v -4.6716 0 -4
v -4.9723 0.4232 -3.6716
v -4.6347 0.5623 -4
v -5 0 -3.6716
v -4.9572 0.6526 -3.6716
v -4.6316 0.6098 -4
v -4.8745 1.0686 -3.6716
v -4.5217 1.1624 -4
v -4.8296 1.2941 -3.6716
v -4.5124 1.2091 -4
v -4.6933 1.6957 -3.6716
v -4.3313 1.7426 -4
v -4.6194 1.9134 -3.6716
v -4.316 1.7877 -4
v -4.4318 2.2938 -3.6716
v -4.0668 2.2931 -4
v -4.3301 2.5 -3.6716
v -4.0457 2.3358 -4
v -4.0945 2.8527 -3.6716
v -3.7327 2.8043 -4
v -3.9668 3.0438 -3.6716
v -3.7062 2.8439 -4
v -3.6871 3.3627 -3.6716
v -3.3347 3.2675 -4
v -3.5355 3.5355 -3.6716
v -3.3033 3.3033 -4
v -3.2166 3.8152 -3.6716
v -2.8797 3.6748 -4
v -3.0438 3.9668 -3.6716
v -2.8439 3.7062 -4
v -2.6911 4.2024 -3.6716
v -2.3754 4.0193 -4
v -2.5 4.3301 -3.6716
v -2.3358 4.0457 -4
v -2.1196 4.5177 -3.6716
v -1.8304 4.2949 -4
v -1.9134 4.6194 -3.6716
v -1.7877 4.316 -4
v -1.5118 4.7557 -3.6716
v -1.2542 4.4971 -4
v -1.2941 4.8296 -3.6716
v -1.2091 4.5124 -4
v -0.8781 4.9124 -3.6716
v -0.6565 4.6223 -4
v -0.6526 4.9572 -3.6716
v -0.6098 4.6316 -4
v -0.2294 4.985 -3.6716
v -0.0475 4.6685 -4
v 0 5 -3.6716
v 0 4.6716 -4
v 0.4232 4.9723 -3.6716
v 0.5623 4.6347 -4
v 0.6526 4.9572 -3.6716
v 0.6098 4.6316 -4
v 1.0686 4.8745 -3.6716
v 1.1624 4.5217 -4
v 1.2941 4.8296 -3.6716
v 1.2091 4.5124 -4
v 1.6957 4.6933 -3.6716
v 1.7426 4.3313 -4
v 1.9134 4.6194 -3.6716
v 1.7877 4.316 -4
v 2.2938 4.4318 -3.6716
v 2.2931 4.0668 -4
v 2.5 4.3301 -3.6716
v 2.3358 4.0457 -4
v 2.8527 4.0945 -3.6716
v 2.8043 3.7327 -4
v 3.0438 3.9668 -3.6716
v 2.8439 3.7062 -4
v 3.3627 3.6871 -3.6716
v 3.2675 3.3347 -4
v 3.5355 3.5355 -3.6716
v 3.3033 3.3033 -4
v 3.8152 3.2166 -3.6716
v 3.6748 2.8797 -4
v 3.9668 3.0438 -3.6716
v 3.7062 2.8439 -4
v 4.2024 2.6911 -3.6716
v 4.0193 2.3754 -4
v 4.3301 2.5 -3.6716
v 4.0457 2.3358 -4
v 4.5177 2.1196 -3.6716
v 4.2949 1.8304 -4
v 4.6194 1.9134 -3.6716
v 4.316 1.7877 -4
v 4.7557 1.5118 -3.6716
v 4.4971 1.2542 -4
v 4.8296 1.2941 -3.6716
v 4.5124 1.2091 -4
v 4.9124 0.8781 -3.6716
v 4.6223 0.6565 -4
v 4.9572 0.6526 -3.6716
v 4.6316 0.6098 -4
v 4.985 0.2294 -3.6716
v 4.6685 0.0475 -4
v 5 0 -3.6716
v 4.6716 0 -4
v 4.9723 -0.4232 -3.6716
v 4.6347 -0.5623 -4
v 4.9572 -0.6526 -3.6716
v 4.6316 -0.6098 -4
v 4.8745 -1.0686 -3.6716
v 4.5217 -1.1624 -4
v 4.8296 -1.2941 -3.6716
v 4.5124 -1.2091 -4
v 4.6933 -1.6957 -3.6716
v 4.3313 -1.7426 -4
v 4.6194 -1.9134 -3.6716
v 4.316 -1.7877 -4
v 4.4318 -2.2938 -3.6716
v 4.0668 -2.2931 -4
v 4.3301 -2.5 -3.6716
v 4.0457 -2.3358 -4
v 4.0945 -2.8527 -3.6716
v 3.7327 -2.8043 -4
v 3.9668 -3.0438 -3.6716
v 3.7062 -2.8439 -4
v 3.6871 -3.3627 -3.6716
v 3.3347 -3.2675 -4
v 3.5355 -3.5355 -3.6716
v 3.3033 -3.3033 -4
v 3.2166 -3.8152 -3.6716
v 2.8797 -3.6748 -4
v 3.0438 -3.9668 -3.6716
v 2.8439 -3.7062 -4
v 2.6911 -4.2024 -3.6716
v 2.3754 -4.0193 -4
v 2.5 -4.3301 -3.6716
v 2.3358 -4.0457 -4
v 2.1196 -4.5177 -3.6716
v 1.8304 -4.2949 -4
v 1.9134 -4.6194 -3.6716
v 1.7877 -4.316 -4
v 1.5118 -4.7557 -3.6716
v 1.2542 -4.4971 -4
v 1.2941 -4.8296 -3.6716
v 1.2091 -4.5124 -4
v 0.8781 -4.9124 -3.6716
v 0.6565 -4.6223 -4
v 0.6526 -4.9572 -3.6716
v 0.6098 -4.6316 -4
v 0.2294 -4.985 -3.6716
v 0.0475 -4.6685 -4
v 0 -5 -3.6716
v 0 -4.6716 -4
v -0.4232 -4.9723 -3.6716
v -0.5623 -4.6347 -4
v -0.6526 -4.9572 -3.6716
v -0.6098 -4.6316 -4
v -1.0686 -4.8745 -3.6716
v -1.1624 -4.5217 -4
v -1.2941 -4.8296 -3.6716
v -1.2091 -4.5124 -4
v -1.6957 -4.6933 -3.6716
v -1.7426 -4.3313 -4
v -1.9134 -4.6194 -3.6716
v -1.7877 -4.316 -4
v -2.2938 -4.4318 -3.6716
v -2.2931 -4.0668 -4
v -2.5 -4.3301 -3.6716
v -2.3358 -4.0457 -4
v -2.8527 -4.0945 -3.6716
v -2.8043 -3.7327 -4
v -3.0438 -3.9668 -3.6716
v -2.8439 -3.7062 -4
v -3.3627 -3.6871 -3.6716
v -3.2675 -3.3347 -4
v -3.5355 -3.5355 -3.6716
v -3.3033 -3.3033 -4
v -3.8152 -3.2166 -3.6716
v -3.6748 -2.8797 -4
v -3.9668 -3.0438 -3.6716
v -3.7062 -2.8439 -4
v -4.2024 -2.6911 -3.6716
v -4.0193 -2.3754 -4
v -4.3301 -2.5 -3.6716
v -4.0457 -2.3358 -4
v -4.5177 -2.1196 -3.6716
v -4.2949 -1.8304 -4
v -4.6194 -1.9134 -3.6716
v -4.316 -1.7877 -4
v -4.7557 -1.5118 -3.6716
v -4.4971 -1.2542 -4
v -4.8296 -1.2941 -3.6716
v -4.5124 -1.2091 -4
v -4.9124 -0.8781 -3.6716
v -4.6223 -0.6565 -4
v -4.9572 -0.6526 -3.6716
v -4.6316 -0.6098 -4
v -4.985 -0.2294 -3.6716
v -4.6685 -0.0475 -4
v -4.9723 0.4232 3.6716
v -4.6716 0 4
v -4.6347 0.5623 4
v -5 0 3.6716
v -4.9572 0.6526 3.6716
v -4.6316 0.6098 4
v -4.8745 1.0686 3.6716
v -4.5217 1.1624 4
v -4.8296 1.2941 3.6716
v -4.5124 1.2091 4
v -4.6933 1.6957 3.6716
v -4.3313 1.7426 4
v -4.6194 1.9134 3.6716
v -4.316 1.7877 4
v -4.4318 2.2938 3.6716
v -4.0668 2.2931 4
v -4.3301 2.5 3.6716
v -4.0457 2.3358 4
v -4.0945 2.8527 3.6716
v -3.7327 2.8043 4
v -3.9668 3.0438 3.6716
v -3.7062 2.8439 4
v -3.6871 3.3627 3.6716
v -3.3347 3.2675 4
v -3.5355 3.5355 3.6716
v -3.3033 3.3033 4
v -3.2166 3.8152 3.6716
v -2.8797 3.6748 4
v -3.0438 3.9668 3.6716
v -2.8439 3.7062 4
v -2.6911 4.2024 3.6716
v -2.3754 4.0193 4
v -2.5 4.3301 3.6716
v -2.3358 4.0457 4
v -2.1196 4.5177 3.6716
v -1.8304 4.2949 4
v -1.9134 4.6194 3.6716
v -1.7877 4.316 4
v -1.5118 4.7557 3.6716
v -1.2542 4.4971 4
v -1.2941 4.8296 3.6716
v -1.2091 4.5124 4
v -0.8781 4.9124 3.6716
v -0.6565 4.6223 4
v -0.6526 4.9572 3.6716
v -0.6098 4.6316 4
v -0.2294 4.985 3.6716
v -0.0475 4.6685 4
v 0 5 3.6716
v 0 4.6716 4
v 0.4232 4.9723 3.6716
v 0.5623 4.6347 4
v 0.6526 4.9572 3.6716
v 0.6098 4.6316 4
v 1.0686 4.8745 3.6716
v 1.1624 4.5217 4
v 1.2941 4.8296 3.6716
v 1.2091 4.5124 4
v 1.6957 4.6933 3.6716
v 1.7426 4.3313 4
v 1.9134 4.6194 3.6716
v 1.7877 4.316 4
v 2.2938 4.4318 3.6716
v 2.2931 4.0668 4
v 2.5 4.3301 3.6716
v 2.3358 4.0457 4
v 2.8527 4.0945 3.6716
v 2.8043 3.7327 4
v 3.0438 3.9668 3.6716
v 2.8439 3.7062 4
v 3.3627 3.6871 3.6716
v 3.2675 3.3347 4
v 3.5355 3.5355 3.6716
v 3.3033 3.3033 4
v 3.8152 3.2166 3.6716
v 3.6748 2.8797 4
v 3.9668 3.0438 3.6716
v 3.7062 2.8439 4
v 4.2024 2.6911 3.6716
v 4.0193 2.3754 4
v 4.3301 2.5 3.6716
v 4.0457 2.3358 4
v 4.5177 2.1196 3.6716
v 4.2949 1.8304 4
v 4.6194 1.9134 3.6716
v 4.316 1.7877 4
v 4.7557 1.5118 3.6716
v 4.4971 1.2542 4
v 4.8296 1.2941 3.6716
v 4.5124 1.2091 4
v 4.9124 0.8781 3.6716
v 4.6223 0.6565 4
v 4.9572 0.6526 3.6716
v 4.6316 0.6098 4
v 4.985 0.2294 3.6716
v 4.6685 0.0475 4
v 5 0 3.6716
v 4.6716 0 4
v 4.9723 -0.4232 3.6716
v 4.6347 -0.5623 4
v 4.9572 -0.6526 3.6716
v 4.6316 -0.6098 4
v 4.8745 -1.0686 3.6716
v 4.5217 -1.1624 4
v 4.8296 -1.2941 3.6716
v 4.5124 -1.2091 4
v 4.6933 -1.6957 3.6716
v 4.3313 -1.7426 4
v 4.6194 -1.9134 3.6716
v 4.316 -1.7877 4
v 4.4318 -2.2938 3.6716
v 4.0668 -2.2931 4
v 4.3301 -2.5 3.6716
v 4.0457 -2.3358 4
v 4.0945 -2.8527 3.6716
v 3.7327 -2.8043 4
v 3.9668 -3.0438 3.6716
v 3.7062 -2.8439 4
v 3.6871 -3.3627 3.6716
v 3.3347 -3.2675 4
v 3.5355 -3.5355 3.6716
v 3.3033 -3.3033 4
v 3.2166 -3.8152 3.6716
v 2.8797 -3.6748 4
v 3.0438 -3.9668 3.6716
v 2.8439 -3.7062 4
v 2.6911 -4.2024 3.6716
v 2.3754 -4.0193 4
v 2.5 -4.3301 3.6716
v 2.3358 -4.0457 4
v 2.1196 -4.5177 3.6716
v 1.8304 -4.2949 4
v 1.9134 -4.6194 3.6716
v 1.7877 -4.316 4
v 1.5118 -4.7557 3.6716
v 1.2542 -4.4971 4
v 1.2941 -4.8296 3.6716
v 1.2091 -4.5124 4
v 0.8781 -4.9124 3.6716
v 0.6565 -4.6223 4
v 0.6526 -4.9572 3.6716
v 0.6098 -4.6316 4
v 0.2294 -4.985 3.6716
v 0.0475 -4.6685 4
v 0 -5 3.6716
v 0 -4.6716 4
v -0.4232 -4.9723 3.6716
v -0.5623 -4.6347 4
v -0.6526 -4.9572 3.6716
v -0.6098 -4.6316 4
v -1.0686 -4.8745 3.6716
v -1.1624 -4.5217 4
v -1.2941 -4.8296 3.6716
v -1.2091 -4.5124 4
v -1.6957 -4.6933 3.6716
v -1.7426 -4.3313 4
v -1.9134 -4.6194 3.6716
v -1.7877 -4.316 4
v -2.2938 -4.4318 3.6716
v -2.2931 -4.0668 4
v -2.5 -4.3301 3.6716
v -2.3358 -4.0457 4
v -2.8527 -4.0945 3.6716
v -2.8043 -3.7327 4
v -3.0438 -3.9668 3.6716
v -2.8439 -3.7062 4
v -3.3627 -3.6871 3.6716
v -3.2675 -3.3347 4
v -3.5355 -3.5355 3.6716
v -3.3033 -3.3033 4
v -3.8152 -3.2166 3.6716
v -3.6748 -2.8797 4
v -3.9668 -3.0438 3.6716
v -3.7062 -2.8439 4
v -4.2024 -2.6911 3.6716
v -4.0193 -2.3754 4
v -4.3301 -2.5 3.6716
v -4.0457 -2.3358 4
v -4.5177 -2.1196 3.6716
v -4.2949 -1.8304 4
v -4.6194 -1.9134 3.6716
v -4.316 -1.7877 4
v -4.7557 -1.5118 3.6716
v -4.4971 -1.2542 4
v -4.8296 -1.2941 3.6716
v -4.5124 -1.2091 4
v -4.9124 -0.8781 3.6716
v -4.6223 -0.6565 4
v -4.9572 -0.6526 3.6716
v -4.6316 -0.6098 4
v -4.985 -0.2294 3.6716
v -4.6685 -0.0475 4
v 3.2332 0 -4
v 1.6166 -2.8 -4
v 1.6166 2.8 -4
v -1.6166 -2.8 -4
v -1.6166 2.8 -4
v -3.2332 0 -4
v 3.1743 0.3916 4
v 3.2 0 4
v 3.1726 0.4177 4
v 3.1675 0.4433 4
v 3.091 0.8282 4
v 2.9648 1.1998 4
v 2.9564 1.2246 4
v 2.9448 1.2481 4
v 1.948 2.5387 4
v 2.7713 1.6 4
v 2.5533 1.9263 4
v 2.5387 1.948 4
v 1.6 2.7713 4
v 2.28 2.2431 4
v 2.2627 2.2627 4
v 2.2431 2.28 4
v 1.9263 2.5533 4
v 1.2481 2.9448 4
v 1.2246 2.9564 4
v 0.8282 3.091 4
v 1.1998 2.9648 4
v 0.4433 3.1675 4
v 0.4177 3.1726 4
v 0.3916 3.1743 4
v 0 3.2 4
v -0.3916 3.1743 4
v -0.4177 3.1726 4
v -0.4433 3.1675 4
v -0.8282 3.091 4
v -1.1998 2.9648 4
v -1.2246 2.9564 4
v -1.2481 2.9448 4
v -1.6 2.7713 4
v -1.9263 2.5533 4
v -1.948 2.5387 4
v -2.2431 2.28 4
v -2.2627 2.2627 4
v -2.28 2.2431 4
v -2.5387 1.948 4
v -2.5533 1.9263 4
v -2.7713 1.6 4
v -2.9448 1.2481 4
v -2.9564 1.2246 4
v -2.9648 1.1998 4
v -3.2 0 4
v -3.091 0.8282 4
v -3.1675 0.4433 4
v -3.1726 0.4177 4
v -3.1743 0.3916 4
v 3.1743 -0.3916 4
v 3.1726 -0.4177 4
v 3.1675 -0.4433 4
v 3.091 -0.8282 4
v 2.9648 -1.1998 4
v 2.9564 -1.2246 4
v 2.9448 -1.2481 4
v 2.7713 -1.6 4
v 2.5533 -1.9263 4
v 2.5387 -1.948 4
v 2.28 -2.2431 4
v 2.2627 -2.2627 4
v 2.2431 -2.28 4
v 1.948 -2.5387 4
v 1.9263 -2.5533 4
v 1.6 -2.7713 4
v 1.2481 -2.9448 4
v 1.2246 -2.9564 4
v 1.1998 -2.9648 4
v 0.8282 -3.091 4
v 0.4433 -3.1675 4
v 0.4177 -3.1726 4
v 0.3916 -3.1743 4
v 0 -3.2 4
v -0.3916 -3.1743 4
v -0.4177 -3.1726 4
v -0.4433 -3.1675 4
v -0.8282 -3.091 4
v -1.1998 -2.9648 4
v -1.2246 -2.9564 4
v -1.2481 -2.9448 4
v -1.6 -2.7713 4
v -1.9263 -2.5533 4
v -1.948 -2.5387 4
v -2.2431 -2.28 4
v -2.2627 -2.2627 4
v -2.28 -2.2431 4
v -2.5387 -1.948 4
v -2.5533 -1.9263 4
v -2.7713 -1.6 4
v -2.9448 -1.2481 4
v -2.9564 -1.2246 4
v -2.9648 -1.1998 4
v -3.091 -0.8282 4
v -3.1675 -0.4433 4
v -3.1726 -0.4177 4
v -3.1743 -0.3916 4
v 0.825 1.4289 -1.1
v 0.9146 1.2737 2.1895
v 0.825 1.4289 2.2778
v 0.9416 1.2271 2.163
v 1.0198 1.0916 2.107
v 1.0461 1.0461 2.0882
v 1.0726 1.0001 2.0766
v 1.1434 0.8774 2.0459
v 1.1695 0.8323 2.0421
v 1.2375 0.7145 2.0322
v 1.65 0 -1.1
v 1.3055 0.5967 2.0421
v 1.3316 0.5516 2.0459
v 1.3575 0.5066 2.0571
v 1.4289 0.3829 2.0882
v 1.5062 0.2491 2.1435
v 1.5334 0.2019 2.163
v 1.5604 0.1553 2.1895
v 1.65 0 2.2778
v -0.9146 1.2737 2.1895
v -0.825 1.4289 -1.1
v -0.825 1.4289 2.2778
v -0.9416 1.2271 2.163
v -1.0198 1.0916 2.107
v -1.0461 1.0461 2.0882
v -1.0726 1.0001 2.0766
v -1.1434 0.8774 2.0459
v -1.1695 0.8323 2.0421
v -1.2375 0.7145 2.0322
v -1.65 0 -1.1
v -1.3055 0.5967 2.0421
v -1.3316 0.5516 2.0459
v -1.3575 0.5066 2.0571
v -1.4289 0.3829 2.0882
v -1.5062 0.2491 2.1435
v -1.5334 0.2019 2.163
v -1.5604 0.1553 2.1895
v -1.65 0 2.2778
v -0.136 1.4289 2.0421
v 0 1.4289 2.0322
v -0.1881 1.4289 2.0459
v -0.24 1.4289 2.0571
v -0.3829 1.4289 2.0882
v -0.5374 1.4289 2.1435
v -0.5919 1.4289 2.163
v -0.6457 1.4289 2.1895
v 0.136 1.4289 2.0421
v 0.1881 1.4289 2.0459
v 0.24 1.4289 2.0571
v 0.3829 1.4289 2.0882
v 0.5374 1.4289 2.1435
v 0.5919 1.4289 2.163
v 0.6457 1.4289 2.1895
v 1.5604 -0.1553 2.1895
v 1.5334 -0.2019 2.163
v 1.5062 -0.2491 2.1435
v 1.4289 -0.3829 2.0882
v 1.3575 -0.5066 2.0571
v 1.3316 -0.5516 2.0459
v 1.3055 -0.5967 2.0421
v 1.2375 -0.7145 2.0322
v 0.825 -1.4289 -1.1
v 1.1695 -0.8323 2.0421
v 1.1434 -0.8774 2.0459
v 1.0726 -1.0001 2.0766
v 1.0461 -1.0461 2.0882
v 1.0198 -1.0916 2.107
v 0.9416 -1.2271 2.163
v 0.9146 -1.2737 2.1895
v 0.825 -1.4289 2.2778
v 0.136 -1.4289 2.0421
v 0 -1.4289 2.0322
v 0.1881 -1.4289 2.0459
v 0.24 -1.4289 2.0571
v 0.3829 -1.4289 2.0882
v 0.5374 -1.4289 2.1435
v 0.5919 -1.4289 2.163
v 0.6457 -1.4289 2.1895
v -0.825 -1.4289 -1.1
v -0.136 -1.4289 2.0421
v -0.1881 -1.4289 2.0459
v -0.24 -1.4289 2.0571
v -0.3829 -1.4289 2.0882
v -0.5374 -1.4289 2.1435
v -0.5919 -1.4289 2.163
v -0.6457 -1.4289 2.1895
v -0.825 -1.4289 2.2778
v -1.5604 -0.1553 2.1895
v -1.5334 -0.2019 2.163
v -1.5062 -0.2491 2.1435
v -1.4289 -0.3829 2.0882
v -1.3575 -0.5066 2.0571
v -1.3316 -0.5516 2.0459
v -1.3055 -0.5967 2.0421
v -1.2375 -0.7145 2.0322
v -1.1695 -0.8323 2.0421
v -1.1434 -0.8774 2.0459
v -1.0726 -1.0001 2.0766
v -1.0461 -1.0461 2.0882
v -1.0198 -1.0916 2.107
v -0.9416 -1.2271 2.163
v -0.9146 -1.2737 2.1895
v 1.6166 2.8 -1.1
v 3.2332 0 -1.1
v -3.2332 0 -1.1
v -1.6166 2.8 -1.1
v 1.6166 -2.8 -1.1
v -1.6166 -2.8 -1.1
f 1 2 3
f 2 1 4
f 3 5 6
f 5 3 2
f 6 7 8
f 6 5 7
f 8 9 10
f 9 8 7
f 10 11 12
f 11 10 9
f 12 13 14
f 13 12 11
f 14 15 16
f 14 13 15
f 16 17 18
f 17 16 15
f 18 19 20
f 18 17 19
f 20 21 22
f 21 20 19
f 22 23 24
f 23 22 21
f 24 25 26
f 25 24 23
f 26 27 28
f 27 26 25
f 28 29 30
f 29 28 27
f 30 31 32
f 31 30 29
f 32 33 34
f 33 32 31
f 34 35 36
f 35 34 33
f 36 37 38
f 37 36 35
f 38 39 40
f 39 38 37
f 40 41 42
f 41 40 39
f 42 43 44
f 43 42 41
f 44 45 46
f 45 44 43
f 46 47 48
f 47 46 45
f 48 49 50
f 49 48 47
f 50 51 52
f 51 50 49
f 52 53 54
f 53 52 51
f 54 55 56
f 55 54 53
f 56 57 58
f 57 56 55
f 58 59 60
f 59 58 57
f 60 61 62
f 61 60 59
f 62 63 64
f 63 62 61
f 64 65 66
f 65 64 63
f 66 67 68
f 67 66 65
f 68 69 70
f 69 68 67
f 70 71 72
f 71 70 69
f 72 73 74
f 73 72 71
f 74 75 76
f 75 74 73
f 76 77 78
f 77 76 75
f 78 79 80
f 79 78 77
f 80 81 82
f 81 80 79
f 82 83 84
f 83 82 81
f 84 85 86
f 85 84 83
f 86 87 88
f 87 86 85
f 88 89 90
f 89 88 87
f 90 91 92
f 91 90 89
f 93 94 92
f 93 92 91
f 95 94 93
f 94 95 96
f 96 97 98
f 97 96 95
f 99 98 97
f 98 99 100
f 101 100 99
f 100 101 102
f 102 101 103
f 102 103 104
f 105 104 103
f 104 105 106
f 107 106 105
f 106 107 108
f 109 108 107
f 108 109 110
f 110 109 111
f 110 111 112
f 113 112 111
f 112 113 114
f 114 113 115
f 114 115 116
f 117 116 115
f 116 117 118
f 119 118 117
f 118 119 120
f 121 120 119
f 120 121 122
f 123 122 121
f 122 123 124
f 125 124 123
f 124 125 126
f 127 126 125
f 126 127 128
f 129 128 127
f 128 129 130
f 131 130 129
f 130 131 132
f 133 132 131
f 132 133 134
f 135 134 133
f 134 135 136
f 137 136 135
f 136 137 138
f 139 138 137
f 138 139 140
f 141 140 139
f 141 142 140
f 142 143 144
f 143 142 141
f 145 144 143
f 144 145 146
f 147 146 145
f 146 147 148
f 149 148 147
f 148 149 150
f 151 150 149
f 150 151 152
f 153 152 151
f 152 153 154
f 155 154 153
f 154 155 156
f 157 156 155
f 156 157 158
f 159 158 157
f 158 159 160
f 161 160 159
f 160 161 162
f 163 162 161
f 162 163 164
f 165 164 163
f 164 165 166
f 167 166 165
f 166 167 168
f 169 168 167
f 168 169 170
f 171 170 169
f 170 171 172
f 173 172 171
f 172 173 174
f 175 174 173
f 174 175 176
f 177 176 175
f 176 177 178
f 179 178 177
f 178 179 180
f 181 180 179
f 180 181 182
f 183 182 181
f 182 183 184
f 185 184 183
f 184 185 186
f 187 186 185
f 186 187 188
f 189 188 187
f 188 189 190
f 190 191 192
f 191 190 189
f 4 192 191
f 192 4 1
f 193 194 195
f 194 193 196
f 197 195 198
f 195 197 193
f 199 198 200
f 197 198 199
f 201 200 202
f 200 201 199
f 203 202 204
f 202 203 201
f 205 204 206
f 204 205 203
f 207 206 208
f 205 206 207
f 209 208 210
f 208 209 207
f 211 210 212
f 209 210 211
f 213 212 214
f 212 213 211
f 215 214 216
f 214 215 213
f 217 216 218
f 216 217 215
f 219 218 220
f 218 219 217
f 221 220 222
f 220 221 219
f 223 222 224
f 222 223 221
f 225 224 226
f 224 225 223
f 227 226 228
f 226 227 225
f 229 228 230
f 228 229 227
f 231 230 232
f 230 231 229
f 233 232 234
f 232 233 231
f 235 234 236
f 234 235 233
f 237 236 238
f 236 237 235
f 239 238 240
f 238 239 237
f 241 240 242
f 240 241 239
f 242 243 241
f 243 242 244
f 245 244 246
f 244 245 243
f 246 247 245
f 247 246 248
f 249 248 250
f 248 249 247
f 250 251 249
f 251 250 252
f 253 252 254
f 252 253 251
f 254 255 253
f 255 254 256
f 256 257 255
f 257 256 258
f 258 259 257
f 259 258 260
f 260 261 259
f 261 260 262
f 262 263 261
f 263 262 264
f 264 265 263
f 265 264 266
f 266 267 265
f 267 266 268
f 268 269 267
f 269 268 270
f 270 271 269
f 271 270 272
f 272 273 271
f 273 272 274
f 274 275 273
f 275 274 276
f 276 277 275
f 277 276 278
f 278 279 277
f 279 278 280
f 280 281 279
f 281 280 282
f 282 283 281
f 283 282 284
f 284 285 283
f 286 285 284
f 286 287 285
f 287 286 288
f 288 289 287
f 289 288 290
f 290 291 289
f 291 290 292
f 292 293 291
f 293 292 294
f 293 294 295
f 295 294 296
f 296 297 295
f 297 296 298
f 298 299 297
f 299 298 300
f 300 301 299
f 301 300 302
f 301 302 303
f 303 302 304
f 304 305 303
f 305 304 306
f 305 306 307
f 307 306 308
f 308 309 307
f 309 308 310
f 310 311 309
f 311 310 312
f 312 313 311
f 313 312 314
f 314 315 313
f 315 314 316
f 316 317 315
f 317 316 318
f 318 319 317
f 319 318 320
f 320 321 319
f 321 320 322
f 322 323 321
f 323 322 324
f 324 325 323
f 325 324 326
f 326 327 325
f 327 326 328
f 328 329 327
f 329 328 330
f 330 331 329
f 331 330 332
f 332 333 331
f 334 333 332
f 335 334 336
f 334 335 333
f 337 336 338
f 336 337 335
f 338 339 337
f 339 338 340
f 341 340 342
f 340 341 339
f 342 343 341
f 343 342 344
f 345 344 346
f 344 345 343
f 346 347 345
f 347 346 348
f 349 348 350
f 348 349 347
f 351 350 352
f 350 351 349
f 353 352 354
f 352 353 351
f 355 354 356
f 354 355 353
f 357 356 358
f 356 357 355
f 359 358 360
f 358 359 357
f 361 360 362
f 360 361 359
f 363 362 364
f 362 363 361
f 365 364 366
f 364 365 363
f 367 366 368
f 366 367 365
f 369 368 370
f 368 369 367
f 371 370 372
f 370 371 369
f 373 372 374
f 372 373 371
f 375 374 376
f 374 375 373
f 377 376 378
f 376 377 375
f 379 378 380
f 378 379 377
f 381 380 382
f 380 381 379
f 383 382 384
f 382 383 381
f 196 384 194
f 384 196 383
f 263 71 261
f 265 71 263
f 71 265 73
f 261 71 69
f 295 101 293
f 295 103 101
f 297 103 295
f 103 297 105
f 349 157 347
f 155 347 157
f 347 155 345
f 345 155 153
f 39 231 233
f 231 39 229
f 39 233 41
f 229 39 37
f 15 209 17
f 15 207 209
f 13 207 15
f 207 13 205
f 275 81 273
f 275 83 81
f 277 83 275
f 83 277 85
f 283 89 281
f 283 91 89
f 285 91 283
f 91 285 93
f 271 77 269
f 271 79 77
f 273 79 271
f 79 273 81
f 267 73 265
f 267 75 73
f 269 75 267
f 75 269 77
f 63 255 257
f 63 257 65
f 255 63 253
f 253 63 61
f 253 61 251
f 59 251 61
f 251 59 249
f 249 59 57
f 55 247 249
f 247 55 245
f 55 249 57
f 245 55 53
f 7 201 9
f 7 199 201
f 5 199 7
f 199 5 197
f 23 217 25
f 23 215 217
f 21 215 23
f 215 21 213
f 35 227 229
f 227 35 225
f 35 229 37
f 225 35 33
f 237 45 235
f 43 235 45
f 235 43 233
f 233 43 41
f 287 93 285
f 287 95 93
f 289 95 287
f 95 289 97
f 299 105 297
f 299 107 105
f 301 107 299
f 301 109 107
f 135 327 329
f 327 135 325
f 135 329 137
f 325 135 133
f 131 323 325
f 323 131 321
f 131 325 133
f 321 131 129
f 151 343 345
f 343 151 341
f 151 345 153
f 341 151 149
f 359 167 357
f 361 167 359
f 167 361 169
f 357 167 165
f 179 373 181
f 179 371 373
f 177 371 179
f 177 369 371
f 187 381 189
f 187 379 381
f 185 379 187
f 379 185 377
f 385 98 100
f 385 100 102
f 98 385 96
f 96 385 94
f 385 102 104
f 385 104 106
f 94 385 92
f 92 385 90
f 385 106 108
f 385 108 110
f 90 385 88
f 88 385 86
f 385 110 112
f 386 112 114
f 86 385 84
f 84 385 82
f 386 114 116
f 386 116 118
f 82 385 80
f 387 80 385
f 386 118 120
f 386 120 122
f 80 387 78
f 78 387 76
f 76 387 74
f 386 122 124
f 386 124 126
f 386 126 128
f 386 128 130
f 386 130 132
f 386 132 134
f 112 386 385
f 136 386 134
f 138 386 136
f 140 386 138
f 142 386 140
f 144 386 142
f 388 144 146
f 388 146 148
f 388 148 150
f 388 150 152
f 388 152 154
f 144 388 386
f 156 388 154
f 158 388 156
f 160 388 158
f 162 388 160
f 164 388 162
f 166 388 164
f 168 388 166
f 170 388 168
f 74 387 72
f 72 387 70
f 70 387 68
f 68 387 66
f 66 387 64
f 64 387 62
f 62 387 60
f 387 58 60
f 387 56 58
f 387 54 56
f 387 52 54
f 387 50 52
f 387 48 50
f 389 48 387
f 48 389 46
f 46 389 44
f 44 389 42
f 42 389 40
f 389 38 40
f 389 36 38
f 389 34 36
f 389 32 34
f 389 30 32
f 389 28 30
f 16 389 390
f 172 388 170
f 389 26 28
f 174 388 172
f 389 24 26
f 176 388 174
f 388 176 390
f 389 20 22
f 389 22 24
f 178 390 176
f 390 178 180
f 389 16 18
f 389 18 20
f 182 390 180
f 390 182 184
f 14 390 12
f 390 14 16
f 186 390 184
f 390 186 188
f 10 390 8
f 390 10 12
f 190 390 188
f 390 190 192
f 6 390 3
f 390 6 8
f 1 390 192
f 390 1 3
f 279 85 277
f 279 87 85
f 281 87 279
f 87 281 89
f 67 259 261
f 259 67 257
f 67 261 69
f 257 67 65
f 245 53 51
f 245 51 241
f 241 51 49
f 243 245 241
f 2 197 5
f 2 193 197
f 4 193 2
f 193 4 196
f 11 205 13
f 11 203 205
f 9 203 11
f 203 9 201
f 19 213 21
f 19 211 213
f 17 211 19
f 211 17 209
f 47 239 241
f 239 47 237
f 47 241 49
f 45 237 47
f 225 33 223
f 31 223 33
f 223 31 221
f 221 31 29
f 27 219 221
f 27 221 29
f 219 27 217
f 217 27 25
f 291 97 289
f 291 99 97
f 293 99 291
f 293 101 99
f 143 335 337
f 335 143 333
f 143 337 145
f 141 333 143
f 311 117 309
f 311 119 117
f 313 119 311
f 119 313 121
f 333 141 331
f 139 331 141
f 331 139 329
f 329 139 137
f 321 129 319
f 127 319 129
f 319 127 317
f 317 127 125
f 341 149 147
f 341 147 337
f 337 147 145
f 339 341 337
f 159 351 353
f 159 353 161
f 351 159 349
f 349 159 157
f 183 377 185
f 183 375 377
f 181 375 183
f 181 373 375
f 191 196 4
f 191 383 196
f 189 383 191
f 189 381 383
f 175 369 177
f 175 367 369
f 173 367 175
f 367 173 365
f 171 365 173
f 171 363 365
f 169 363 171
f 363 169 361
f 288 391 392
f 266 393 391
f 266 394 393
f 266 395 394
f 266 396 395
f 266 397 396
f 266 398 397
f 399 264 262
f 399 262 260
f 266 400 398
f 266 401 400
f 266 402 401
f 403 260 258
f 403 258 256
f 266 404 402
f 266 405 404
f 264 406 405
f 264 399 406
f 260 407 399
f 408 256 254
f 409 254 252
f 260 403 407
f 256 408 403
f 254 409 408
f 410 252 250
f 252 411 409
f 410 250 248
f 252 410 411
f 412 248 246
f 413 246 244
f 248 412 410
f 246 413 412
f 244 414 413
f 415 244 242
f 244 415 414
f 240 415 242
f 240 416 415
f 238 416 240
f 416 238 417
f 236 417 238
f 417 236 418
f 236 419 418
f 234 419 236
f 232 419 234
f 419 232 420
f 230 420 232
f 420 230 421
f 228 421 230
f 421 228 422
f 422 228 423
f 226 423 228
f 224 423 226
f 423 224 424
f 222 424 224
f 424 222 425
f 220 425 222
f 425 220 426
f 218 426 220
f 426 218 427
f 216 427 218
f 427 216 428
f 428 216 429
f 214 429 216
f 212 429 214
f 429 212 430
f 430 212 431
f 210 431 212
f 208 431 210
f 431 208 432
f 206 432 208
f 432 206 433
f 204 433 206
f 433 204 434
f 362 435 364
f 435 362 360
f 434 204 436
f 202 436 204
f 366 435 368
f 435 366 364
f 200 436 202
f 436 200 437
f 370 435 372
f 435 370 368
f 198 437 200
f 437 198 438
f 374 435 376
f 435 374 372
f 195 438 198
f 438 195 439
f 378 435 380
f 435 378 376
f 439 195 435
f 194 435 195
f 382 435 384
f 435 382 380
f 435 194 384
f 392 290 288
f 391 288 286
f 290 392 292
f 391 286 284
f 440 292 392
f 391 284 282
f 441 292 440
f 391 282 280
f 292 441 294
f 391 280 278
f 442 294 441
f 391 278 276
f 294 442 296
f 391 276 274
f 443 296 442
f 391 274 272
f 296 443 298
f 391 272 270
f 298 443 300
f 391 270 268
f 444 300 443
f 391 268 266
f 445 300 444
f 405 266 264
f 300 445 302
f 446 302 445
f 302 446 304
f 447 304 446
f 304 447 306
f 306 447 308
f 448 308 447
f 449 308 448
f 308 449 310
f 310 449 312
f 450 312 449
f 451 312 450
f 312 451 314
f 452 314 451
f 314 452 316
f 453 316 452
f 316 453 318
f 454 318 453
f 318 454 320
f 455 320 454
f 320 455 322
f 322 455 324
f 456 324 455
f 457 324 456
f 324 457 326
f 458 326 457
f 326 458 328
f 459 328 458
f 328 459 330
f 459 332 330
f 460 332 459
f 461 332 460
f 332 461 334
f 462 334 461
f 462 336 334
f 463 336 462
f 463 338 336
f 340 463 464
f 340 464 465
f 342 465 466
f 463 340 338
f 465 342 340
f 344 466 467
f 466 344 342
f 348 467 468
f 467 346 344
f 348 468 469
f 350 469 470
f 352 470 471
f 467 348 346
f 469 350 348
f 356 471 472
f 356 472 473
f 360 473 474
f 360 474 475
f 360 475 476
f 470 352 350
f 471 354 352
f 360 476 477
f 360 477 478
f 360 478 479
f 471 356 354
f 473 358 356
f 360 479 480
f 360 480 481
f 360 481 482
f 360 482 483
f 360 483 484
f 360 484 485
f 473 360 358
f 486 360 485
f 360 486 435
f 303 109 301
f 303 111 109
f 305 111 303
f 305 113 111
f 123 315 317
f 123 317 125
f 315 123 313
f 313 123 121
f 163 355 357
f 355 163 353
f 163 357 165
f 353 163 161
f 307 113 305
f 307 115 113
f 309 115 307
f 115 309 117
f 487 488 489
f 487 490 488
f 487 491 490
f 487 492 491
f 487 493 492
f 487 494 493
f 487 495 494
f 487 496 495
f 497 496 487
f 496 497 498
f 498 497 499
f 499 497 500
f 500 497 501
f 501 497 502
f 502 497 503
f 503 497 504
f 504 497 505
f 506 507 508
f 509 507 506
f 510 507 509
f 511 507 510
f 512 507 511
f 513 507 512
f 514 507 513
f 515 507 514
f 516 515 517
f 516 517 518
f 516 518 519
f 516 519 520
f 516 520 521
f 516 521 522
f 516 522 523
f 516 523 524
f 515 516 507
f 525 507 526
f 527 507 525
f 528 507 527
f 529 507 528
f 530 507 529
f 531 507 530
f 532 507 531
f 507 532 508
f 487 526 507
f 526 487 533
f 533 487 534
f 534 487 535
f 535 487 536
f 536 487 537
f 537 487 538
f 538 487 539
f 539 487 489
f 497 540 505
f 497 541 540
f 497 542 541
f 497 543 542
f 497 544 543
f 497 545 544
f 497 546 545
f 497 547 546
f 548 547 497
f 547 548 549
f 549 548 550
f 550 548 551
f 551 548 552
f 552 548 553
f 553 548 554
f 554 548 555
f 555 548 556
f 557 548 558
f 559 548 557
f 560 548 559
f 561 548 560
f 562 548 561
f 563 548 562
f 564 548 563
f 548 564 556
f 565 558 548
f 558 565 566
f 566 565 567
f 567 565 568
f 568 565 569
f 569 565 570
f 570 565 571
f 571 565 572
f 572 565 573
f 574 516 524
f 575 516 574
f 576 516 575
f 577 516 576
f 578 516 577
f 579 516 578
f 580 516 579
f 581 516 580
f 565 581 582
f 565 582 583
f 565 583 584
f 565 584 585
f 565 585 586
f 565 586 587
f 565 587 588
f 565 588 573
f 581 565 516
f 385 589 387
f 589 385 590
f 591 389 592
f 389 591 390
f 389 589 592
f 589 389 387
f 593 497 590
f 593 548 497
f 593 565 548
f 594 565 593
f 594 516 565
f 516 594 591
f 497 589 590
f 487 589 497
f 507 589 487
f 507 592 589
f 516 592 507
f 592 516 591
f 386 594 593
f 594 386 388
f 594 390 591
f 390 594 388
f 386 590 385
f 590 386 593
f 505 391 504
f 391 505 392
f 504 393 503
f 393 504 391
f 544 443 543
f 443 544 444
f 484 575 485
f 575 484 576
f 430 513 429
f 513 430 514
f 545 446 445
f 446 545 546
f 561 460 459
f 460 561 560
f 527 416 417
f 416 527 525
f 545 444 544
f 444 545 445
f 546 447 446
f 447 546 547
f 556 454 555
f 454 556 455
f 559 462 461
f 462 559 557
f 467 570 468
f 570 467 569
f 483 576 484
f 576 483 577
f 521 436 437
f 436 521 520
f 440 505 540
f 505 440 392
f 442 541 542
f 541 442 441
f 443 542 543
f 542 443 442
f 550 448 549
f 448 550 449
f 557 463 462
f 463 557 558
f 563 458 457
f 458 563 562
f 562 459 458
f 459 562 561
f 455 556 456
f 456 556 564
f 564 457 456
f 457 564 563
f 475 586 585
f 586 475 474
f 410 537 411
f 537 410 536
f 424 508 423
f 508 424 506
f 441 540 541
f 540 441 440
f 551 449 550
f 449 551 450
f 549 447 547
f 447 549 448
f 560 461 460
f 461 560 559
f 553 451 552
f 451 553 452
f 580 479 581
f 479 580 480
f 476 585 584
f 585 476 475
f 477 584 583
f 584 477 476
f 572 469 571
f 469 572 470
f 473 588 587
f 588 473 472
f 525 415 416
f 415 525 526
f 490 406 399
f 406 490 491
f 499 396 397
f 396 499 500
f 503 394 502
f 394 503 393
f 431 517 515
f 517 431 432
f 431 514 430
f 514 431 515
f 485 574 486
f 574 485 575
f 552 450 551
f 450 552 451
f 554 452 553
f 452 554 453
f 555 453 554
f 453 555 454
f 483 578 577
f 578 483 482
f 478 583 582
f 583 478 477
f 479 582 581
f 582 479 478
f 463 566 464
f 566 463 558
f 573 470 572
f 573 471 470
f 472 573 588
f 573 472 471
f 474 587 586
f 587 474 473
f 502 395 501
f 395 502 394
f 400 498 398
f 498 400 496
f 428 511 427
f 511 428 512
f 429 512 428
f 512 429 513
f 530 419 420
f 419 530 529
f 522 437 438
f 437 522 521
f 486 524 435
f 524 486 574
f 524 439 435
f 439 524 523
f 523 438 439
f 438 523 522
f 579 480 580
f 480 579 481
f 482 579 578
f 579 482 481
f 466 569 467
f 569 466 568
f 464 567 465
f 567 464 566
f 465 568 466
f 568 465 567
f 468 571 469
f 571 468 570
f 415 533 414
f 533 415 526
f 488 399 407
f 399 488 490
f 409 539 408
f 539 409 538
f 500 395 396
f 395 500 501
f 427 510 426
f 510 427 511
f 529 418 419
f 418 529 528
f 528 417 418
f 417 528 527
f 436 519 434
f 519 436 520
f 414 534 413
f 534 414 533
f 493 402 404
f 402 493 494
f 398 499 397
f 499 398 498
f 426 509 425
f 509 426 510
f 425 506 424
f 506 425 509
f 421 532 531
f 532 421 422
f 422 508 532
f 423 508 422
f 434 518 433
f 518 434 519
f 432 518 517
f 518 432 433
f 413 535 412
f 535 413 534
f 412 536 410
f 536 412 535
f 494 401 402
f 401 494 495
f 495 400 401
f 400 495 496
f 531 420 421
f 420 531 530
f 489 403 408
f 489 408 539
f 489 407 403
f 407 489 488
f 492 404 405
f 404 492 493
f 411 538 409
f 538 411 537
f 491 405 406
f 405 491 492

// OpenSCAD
// file: lib/parameters.scad
// Parameters shared between modules
Base_th = 2;
Beam_width = 15;
Wiggle = 0.25;
Fat_beam_width = Beam_width + Wiggle;
Beam_length = 400;
Wall_th = 2.5;
Min_beam_width = 12.5;
Max_beam_width = 17.5;
Zip_th = 2;
Zip_h = Zip_th + Max_beam_width - Min_beam_width;
Zip_w = 5.0;
Nema17_cube_width          = 42.43;
Nema17_screw_hole_width    = 43.74; // Opposite corner screws
Nema17_ring_diameter       = 22;
Nema17_cube_height         = 39.36;
Nema17_shaft_height        = 63.65;
Nema17_ring_height         = 2;
Nema17_shaft_radius        = 5/2;
b608_outer_dia = 22.2;
b608_width = 7.05;
b608_bore_r = 4;
b608_vgroove_big_r = b608_outer_dia/2 + 2;
b608_vgroove_small_r = b608_outer_dia/2;
b608_ugroove_big_r = b608_vgroove_big_r;
b608_ugroove_small_r = b608_vgroove_small_r;
Gap_between_sandwich_and_plate = 1.5 + Base_th; // 1.5 mm for wiggle
Motor_bracket_flerp_r = 6;
Motor_bracket_flerp = 14;
Motor_bracket_cw = Nema17_cube_width + 6;
Motor_bracket_att_ang = 50;
Mounting_screw_d = 3.5;
Mounting_screw_head_d = 14;
Spool_outer_wall_th = 4;

// Corner clamp parameters
Cc_l1 = (Fat_beam_width+2*Wall_th)*2*sqrt(3);
Cc_rad_b = 4;
Cc_action_point_from_mid = Cc_l1/sqrt(3)-2*Cc_rad_b-7;
Cc_plastic_length = sqrt(Cc_action_point_from_mid*Cc_action_point_from_mid
                       - (Cc_action_point_from_mid/2)*(Cc_action_point_from_mid/2));
Eyelet_extra_dist = 0.75;
Eyelet_diameter = 4.30;
Move_d_bearings_inwards = -2;

// The distance between the two action points on the mover
Sidelength = Beam_length + 2*Cc_plastic_length;

/////// Gear parameters ////////////
Circular_pitch = 262;
Motor_teeth = 10;
Gear_height = 21.4-3;
Motor_pitch                      = (Motor_teeth*Circular_pitch/360);
Motor_pitch_diametrial           = Motor_teeth/(2*Motor_pitch);
Motor_outer_radius               = Motor_pitch + 1/Motor_pitch_diametrial;
Spool_teeth = 100;
Spool_r = 75;
Spool_height = 8;
Spool_pitch                      = (Spool_teeth*Circular_pitch/360);
Spool_pitch_diametrial           = Spool_teeth/(2*Spool_pitch);
Spool_outer_radius               = Spool_pitch + 1/Spool_pitch_diametrial;
Sep_disc_radius = (161.83+1)/2; // Made to match 255 teeth gt2 pulley + 1
Motor_bracket_depth = Gear_height+1+7+Nema17_ring_height+1+Gap_between_sandwich_and_plate;
Spool_core_flerp0 = 16+3;

/////// Lineroller parameters ////////////
b623_width  = 4;
b623_bore_r = 3/2;
b623_vgroove_big_r = 12/2;
b623_vgroove_small_r = 10/2;
b623_outer_dia = 10;
b623_vgroove_room_to_grow_r = 1.1;
b608_vgroove_room_to_grow_r = 1.1;
b623_flange_dia = 11.5;
b623_flange_room_to_grow_r = 0.5;

Depth_of_roller_base = 18;
Roller_flerp = 6;
Roller_l = 42;
Roller_fl = (Roller_l - Depth_of_roller_base)/2;

Line_roller_wall_th = 5;

Line_roller_ABC_winch_h =  Gap_between_sandwich_and_plate
                           + Sep_disc_radius
                           - Spool_r
                           + Depth_of_roller_base/2
                           + b608_vgroove_small_r;

Shear_line_roller_double_bearings = 20;

Ptfe_r = 2.1;
Roller_base_r = 8;
Screw_h = 2;
Screw_head_h = 2;
M3_screw_head_d = 5.8;
Spool_center_bearing_wall_th = 5;
Corner_clamp_bearings_center_to_center = max(15, (b623_vgroove_big_r + b623_vgroove_room_to_grow_r)*2);
Anchor_bearings_center_to_center = Corner_clamp_bearings_center_to_center + b623_outer_dia;

//// Lineroller anchor parameters /////

Back_bearing_x = b623_vgroove_big_r + 1.5;
Front_bearing_x = -b623_vgroove_big_r - 5;
Move_tower = -12.2;
Lower_bearing_z = 13;
Higher_bearing_z = Lower_bearing_z + Corner_clamp_bearings_center_to_center;

//// Cable Clamp parameters /////
Bit_width = 12;
Cable_r=2.5;

// Belt drive parameters
GT2_belt_width = 6.5;
GT2_gear_height = GT2_belt_width + 2;
GT2_motor_gear_height = 16;
GT2_motor_gear_outer_dia = 16;
GT2_spool_gear_teeth = 255;
GT2_motor_gear_teeth = 20;
Torx_depth = GT2_gear_height/2;
Belt_roller_h = 56;
Belt_thickness = 1.4;

Belt_roller_space_between_walls = 2*b623_width + 0.8;
Belt_roller_wall_th = (Depth_of_roller_base - Belt_roller_space_between_walls)/2+2;
Belt_roller_top_adj_screw_x = Depth_of_roller_base/2-3.7;
Belt_roller_top_adj_screw_y = Belt_roller_space_between_walls/2+2;
Belt_roller_containing_cube_ywidth = Belt_roller_space_between_walls+8.5;
Belt_roller_containing_cube_xwidth = 14;
Belt_roller_insert_h = 18;

Sandwich_ABC_width = 2*(1+Spool_height) + GT2_gear_height;
Sandwich_D_width = 4*(1+Spool_height) + GT2_gear_height;
Spool_core_halve_width = 14.3;
Spool_core_impression_in_spool_cover = 0;
Spool_cover_bottom_th = 1.5;
Spool_cover_shoulder = 2;
Spool_core_cover_adj = Spool_cover_shoulder+Spool_cover_bottom_th-Spool_core_impression_in_spool_cover;
Spool_core_tot_length = 136.458;
Spool_cover_outer_r = Sep_disc_radius + 2;
Gap_between_sep_disc_and_spool_cover = 0.5;

Smooth_rod_length_ABC = Sandwich_ABC_width + 2*(Spool_core_halve_width-Spool_core_impression_in_spool_cover + Spool_cover_bottom_th + Spool_cover_shoulder);
Smooth_rod_length_D = Sandwich_D_width + 2*(Spool_core_halve_width-Spool_core_impression_in_spool_cover + Spool_cover_bottom_th + Spool_cover_shoulder);
echo("Smooth_rod_length_ABC", Smooth_rod_length_ABC);
echo("Smooth_rod_length_D", Smooth_rod_length_D);

Spool_cover_tot_height = Spool_cover_bottom_th+Spool_cover_shoulder+1+Spool_height;
Spool_cover_D_left_tot_height = Spool_cover_shoulder+Spool_cover_bottom_th+1+Spool_height+1+Spool_height;

spd = Spool_height+GT2_gear_height;
// Horizontal_deflector_cube_y_size must be exact this number
// because we want to deflect AB-lines
// 60 degrees on the ceiling unit, and we want to put two
// deflectors in a row and get a distance between bearings
// that maintain the distance d when deflecting 60 degrees
Horizontal_deflector_cube_y_size = (2/sqrt(3))*spd;

Belt_roller_bearing_xpos = Sep_disc_radius + b623_outer_dia/2+Belt_thickness;


// Top plate parameters needed for layout slicer
Yshift_top_plate = -297.8;

Pen_holder_w = 55;
Pen_holder_rail_w = 36;
Pen_holder_bottom_th = 7;
// main file
include <lib/parameters.scad>
use <lib/util.scad>

pen_holder_nut_head();
module pen_holder_nut_head(){
  difference(){
    cylinder(d=10, h=8, $fn=12*4, center=true);
    for(k=[0,1]) mirror([0,0,k])
    translate([0,0,-1.5-4])
      rotate_extrude($fn=12*4)
        translate([6, 0])
          rotate([0,0,45])
            square(2);
    cylinder(d=3.3, h=9, center=true);
    translate([0,0,-4.1])
      M3_nut(h=3);
    translate([0,0,1])
      cylinder(d1=1, d2=10, h=5, $fn=12*4);
  }
}
